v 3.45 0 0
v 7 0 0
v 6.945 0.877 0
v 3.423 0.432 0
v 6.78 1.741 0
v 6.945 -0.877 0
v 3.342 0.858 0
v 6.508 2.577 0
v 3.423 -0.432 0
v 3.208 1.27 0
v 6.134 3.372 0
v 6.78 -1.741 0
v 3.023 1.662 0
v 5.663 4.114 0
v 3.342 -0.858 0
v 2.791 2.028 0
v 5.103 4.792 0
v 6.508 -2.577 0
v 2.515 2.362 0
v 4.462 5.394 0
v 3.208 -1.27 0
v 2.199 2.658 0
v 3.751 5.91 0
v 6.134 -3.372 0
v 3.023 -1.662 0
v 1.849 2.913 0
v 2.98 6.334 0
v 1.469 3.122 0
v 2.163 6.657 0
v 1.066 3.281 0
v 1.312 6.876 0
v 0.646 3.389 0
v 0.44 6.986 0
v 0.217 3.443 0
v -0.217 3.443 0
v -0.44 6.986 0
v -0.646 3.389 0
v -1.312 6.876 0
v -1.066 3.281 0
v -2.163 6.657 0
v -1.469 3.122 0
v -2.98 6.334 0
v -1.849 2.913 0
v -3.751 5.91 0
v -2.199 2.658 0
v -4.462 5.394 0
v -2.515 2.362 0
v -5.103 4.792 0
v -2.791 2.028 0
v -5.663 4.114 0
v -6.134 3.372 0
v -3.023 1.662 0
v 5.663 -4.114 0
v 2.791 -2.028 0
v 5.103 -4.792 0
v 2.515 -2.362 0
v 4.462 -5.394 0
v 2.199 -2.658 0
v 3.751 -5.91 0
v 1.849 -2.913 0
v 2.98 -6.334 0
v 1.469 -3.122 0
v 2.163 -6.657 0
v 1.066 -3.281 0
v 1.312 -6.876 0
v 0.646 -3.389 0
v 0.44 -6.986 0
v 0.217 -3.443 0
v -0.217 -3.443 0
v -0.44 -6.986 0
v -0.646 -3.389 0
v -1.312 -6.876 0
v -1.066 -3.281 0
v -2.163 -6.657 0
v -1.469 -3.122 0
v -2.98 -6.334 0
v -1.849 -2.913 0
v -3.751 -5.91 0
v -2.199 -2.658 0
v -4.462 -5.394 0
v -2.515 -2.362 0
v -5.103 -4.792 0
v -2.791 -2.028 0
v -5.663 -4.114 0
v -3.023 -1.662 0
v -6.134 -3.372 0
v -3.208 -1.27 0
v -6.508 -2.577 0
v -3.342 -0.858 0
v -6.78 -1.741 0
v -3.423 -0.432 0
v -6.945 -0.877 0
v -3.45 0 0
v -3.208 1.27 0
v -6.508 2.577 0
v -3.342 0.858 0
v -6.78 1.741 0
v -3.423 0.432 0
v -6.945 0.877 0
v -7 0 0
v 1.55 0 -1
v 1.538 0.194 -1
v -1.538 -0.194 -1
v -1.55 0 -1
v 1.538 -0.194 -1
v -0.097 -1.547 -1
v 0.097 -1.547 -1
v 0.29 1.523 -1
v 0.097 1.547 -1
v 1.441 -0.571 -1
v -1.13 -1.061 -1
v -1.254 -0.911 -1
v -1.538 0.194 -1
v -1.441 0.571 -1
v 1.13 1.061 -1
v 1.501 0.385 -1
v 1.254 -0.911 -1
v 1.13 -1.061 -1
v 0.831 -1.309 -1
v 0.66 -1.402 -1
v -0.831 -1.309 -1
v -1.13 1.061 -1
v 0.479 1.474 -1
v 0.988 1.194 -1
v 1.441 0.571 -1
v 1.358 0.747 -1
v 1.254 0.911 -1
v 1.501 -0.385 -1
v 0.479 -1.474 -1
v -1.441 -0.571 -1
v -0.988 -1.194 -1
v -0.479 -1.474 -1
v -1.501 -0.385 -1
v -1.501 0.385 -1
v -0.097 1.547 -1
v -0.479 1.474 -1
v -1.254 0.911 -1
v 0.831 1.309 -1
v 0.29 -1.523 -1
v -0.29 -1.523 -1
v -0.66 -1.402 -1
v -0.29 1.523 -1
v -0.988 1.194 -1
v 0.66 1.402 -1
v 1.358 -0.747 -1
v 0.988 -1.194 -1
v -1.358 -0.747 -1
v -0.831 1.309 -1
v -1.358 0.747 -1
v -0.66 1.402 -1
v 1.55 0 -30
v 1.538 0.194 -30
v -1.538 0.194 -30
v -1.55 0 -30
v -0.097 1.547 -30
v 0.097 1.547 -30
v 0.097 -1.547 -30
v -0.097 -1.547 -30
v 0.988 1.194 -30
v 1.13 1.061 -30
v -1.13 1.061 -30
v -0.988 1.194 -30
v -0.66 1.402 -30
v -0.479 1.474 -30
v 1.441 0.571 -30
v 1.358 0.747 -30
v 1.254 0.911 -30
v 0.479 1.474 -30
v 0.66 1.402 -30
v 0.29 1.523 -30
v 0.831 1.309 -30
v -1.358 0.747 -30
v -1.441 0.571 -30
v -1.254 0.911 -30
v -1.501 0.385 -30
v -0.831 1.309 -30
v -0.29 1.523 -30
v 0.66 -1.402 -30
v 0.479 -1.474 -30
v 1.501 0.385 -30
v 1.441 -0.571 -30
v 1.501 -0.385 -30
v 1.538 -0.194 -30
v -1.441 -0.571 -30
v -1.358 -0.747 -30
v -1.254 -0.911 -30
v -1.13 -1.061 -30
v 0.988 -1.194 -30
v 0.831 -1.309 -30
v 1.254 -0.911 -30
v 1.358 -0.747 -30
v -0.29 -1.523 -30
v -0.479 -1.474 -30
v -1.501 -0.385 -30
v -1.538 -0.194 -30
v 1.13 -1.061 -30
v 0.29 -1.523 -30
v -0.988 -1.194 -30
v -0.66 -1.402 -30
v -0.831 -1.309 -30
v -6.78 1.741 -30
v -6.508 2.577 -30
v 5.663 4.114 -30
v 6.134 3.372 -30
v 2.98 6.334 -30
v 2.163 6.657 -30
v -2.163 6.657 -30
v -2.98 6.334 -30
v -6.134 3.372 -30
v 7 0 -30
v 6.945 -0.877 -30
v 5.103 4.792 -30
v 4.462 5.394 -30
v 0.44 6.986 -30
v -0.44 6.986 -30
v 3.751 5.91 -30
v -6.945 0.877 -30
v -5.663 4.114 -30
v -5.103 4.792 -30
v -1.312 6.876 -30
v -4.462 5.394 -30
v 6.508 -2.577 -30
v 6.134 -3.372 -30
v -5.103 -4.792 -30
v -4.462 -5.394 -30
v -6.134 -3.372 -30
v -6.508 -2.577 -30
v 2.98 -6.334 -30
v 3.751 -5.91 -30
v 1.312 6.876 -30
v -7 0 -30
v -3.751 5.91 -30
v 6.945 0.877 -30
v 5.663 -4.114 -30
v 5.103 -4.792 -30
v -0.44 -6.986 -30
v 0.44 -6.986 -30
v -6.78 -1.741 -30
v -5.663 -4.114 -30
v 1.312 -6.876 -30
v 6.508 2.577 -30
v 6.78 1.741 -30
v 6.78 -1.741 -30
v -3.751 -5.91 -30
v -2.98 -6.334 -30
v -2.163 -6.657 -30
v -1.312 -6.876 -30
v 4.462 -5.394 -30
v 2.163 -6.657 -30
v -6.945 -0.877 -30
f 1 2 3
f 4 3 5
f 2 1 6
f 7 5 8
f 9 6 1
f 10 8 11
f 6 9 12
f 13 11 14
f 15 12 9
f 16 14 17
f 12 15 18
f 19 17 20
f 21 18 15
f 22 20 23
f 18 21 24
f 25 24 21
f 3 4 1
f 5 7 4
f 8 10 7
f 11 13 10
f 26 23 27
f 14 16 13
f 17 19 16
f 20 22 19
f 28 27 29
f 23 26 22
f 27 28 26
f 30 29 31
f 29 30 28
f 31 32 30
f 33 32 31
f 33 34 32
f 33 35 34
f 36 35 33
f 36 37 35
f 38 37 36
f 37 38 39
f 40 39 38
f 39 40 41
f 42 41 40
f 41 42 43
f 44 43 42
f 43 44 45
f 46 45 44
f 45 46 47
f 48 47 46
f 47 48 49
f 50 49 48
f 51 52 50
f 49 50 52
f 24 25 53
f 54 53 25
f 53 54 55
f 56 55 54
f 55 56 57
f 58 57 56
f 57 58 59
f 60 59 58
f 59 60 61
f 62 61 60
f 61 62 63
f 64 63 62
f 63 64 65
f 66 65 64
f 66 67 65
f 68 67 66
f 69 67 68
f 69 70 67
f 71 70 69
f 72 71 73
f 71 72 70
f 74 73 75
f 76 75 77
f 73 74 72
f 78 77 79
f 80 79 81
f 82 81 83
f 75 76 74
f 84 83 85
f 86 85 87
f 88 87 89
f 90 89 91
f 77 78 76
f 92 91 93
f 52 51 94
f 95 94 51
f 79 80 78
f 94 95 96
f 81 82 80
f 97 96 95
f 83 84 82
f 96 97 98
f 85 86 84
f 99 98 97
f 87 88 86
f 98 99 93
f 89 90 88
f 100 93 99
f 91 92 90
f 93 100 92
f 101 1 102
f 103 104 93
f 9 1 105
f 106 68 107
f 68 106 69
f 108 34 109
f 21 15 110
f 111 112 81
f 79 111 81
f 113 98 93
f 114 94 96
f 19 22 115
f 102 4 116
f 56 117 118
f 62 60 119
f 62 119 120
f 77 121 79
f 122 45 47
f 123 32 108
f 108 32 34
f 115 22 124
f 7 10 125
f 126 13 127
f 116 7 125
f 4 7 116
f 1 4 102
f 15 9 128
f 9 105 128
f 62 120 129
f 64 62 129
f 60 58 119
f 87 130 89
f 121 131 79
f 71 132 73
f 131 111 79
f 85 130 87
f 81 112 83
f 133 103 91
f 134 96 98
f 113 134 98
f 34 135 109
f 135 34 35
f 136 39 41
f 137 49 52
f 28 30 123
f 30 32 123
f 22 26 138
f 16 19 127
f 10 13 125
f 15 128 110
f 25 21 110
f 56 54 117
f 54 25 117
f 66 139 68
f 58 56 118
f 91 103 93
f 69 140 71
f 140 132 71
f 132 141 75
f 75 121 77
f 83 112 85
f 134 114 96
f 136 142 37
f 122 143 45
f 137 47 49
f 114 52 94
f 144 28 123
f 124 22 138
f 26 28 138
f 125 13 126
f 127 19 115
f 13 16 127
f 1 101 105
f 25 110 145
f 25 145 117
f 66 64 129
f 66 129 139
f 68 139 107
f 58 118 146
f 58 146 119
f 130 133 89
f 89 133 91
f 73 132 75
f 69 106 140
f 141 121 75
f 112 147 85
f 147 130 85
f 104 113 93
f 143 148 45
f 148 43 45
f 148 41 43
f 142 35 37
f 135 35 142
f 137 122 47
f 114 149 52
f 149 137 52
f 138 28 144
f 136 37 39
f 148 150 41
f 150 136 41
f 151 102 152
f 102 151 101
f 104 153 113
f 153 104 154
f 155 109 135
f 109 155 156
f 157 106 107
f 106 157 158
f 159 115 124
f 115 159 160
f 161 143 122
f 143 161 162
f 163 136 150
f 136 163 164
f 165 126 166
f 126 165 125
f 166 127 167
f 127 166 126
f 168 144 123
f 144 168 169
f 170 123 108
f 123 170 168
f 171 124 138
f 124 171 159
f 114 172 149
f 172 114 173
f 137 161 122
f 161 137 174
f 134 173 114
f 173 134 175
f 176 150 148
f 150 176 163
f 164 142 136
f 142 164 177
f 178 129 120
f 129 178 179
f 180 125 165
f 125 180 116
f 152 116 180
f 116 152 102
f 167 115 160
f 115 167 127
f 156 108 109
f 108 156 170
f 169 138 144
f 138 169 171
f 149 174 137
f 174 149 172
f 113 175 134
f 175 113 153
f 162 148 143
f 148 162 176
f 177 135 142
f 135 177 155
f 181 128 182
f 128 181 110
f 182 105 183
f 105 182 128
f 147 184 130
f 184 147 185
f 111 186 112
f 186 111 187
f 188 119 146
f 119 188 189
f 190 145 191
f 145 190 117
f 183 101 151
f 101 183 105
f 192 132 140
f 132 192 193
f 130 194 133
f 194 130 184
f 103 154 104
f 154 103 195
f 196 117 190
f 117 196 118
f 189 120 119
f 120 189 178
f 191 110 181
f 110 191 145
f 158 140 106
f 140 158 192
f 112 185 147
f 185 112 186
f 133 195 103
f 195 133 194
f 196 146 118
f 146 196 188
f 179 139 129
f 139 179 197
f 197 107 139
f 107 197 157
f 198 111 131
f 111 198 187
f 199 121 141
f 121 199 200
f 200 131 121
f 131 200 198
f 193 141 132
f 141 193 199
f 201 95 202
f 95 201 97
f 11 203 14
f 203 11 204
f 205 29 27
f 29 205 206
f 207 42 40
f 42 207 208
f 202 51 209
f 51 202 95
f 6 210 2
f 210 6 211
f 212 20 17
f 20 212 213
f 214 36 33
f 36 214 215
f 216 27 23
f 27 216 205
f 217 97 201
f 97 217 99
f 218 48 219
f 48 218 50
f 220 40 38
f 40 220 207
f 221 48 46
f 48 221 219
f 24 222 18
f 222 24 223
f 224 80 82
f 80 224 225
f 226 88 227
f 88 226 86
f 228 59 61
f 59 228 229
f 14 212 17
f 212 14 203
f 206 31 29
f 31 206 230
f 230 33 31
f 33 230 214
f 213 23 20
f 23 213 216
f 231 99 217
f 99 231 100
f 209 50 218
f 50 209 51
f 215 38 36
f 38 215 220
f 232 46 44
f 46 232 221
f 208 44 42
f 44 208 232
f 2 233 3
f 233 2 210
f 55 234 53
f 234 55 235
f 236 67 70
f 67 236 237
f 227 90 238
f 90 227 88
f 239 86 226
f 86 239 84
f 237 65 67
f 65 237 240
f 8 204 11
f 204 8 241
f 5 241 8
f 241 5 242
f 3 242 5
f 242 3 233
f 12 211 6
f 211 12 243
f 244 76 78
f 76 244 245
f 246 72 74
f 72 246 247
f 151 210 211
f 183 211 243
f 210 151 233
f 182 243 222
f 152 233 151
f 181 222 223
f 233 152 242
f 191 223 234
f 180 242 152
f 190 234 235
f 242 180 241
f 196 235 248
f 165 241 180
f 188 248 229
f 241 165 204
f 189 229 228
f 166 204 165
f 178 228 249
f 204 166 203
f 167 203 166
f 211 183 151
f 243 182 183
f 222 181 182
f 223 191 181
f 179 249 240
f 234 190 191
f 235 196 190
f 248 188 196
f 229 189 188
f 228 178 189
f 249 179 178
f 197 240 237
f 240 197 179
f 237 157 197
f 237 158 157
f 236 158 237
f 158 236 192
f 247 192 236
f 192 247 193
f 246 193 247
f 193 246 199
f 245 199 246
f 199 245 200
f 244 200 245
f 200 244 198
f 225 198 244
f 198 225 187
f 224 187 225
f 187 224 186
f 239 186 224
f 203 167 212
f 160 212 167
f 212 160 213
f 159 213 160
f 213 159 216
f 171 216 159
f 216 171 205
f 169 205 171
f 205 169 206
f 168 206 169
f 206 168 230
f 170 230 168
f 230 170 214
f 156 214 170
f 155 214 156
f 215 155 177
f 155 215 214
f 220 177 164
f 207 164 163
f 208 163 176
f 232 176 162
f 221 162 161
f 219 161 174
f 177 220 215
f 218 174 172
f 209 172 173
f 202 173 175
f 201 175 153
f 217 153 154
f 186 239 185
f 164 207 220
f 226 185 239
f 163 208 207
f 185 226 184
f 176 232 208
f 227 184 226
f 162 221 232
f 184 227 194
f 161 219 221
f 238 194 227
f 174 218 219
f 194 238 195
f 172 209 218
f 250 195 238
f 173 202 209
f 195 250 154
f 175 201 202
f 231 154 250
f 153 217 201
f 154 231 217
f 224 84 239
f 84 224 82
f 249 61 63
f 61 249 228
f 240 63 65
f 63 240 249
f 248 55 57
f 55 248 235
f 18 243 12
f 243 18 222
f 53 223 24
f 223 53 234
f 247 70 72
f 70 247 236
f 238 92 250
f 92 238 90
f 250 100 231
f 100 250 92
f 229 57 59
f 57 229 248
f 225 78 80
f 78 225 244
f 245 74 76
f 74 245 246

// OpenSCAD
$fn = 50;


difference() {
	union() {
		translate(v = [0, 0, -30.0000000000]) {
			cylinder(h = 30, r = 7.0000000000);
		}
	}
	union() {
		translate(v = [0, 0, 0]) {
			rotate(a = [0, 0, 0]) {
				difference() {
					union() {
						translate(v = [0, 0, -33.0000000000]) {
							cylinder(h = 33, r = 1.2500000000);
						}
						translate(v = [0, 0, -1.0000000000]) {
							cylinder(h = 1.0000000000, r1 = 1.5500000000, r2 = 3.4500000000);
						}
						translate(v = [0, 0, -33.0000000000]) {
							cylinder(h = 33, r = 1.5500000000);
						}
						translate(v = [0, 0, -33.0000000000]) {
							cylinder(h = 33, r = 1.2500000000);
						}
					}
					union();
				}
			}
		}
	}
}
